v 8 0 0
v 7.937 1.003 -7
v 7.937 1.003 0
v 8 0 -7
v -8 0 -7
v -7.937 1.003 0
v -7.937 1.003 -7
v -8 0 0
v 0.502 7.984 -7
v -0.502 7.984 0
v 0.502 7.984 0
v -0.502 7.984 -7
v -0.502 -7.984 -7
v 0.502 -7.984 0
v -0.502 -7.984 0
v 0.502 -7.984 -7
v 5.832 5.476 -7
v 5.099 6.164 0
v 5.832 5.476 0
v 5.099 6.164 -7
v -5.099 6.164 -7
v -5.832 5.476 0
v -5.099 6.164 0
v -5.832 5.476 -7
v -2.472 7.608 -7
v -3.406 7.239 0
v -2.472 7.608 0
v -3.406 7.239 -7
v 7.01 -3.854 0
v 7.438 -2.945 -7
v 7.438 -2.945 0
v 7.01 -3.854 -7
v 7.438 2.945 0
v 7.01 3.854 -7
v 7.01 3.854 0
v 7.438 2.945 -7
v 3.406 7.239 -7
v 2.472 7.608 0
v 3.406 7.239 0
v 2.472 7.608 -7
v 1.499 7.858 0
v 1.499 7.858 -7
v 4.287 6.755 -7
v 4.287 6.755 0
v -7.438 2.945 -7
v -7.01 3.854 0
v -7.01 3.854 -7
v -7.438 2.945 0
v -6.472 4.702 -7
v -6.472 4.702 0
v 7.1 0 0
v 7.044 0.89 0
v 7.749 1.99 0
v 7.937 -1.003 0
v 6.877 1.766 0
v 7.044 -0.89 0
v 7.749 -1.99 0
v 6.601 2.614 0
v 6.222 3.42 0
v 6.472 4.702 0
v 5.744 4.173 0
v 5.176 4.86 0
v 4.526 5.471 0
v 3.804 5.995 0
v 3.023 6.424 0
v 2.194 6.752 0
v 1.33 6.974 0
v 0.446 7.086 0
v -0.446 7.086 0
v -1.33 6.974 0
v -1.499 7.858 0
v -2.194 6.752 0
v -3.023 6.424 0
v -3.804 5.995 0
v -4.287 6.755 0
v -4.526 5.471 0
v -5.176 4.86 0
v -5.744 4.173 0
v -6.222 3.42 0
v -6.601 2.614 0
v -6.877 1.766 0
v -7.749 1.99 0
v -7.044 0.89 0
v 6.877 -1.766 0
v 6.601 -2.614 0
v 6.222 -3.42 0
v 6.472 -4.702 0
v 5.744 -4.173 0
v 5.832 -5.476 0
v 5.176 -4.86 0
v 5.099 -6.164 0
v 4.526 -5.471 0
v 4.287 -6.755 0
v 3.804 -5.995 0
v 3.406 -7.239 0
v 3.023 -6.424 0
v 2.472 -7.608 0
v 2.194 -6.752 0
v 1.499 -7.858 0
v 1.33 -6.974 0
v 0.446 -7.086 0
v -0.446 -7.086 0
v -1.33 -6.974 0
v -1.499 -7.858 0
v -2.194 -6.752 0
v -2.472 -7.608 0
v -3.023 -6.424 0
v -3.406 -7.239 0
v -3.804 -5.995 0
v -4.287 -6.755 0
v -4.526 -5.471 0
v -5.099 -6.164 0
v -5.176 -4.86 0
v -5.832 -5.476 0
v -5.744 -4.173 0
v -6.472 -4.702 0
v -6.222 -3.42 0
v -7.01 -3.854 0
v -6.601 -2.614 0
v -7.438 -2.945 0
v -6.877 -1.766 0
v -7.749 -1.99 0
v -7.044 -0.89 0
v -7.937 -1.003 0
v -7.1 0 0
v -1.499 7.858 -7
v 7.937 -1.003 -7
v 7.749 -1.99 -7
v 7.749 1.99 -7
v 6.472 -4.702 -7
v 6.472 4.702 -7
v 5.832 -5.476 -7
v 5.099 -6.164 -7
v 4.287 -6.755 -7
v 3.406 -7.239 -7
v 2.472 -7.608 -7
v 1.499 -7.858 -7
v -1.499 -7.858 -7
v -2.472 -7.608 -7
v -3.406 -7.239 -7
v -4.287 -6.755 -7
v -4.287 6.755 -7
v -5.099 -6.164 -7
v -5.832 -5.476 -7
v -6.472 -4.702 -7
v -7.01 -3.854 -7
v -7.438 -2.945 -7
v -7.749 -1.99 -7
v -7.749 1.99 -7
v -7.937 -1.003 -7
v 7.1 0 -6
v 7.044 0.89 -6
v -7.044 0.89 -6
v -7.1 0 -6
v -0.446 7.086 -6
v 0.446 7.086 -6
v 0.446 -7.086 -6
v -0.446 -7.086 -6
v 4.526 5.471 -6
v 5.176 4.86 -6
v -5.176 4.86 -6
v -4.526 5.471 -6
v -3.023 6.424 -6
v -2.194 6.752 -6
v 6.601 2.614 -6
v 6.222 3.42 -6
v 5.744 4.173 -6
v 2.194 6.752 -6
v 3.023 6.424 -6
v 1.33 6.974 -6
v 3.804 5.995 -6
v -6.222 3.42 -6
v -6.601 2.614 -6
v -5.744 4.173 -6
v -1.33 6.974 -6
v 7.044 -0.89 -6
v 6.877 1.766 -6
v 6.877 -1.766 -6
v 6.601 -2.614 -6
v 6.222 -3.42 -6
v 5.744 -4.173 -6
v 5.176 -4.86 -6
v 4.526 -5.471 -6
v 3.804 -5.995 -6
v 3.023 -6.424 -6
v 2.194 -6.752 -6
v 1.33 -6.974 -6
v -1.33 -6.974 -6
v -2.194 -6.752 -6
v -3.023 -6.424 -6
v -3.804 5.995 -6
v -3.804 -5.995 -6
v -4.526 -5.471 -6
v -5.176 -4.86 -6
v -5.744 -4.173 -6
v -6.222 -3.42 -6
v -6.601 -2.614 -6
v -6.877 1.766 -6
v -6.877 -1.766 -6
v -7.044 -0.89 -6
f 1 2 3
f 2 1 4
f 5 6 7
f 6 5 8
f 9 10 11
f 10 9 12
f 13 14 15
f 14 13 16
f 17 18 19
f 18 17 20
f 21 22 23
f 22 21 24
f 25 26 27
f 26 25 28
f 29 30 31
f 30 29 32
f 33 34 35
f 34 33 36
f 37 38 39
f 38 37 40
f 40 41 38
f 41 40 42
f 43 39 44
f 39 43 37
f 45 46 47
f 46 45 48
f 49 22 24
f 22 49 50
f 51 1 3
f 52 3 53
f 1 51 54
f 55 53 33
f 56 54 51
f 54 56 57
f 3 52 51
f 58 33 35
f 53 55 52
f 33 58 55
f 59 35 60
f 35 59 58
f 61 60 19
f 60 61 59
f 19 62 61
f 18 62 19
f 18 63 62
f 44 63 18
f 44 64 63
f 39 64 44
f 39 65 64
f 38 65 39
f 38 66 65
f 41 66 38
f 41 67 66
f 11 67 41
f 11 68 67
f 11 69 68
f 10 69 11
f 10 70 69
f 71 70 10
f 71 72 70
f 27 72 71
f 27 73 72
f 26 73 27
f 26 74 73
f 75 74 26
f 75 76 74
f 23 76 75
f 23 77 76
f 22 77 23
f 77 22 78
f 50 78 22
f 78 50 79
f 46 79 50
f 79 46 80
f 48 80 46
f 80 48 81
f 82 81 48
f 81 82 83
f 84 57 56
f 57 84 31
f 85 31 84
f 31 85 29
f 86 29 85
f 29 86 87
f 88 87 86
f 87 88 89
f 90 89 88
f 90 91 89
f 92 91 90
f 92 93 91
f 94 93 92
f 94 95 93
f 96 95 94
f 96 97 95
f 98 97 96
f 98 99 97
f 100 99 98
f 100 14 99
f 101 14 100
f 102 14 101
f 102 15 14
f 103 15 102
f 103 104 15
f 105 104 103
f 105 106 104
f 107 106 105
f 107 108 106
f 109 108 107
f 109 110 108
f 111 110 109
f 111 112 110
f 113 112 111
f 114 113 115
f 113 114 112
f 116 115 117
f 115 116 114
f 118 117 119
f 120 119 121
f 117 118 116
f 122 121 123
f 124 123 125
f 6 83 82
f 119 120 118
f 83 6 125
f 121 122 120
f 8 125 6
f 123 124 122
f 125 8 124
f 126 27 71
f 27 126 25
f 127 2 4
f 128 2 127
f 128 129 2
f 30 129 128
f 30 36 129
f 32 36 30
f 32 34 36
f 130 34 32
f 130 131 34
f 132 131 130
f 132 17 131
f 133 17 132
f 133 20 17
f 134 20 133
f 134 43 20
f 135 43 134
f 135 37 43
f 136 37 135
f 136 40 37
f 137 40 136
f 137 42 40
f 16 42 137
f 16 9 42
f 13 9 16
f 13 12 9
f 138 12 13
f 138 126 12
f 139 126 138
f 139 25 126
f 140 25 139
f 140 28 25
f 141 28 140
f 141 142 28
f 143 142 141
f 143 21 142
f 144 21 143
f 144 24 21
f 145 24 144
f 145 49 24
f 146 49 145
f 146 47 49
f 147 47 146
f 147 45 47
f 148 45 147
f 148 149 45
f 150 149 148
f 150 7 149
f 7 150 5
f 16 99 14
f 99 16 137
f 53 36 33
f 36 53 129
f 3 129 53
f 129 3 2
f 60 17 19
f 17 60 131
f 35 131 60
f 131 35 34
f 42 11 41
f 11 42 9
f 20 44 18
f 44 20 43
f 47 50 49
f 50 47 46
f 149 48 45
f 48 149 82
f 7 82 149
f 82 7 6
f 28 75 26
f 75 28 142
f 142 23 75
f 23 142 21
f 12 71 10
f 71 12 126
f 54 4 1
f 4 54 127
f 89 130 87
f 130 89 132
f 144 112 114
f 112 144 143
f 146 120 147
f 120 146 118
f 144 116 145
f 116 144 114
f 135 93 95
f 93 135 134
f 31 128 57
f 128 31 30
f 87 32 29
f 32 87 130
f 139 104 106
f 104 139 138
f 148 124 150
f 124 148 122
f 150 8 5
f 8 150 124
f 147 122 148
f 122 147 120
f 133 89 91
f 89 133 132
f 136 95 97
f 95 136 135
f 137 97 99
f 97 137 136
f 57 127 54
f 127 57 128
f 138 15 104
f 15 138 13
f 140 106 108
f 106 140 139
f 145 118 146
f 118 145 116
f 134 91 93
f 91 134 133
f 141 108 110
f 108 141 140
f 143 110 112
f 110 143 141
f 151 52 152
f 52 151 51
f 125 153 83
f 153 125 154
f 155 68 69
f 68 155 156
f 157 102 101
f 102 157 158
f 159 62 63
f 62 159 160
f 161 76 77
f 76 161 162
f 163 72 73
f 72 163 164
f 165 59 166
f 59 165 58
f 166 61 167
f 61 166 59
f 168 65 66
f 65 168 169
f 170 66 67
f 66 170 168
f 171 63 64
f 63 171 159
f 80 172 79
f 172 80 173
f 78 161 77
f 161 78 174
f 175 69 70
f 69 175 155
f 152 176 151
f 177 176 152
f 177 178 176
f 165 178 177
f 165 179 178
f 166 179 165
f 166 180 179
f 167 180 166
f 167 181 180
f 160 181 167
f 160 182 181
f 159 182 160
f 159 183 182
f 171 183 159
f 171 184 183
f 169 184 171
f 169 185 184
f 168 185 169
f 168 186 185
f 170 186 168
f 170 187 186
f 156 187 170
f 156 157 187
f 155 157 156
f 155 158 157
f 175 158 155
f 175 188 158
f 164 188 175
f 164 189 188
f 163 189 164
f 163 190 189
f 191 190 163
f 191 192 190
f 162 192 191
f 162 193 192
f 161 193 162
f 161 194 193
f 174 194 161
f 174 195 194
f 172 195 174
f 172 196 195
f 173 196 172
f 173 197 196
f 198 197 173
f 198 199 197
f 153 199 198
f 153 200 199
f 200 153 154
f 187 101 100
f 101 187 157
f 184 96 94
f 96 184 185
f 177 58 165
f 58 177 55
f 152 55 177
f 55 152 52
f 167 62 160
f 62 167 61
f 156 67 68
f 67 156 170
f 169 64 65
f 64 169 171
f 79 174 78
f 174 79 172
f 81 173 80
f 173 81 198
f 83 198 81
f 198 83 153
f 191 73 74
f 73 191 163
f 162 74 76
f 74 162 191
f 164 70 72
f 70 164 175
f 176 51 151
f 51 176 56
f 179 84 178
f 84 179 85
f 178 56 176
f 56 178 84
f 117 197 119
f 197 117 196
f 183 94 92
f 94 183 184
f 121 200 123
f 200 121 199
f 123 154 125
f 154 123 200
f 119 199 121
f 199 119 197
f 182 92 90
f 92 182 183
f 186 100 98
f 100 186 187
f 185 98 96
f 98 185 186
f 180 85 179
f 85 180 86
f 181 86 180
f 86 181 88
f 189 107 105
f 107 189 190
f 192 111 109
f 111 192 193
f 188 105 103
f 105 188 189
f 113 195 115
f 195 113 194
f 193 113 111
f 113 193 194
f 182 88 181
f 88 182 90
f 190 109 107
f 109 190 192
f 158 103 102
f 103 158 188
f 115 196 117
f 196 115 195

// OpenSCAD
$fn = 50;


difference() {
	union() {
		translate(v = [0, 0, -7.0000000000]) {
			cylinder(h = 7, r = 8.0000000000);
		}
	}
	union() {
		#translate(v = [0, 0, -6.0000000000]) {
			cylinder(h = 6, r = 7.1000000000);
		}
	}
}
